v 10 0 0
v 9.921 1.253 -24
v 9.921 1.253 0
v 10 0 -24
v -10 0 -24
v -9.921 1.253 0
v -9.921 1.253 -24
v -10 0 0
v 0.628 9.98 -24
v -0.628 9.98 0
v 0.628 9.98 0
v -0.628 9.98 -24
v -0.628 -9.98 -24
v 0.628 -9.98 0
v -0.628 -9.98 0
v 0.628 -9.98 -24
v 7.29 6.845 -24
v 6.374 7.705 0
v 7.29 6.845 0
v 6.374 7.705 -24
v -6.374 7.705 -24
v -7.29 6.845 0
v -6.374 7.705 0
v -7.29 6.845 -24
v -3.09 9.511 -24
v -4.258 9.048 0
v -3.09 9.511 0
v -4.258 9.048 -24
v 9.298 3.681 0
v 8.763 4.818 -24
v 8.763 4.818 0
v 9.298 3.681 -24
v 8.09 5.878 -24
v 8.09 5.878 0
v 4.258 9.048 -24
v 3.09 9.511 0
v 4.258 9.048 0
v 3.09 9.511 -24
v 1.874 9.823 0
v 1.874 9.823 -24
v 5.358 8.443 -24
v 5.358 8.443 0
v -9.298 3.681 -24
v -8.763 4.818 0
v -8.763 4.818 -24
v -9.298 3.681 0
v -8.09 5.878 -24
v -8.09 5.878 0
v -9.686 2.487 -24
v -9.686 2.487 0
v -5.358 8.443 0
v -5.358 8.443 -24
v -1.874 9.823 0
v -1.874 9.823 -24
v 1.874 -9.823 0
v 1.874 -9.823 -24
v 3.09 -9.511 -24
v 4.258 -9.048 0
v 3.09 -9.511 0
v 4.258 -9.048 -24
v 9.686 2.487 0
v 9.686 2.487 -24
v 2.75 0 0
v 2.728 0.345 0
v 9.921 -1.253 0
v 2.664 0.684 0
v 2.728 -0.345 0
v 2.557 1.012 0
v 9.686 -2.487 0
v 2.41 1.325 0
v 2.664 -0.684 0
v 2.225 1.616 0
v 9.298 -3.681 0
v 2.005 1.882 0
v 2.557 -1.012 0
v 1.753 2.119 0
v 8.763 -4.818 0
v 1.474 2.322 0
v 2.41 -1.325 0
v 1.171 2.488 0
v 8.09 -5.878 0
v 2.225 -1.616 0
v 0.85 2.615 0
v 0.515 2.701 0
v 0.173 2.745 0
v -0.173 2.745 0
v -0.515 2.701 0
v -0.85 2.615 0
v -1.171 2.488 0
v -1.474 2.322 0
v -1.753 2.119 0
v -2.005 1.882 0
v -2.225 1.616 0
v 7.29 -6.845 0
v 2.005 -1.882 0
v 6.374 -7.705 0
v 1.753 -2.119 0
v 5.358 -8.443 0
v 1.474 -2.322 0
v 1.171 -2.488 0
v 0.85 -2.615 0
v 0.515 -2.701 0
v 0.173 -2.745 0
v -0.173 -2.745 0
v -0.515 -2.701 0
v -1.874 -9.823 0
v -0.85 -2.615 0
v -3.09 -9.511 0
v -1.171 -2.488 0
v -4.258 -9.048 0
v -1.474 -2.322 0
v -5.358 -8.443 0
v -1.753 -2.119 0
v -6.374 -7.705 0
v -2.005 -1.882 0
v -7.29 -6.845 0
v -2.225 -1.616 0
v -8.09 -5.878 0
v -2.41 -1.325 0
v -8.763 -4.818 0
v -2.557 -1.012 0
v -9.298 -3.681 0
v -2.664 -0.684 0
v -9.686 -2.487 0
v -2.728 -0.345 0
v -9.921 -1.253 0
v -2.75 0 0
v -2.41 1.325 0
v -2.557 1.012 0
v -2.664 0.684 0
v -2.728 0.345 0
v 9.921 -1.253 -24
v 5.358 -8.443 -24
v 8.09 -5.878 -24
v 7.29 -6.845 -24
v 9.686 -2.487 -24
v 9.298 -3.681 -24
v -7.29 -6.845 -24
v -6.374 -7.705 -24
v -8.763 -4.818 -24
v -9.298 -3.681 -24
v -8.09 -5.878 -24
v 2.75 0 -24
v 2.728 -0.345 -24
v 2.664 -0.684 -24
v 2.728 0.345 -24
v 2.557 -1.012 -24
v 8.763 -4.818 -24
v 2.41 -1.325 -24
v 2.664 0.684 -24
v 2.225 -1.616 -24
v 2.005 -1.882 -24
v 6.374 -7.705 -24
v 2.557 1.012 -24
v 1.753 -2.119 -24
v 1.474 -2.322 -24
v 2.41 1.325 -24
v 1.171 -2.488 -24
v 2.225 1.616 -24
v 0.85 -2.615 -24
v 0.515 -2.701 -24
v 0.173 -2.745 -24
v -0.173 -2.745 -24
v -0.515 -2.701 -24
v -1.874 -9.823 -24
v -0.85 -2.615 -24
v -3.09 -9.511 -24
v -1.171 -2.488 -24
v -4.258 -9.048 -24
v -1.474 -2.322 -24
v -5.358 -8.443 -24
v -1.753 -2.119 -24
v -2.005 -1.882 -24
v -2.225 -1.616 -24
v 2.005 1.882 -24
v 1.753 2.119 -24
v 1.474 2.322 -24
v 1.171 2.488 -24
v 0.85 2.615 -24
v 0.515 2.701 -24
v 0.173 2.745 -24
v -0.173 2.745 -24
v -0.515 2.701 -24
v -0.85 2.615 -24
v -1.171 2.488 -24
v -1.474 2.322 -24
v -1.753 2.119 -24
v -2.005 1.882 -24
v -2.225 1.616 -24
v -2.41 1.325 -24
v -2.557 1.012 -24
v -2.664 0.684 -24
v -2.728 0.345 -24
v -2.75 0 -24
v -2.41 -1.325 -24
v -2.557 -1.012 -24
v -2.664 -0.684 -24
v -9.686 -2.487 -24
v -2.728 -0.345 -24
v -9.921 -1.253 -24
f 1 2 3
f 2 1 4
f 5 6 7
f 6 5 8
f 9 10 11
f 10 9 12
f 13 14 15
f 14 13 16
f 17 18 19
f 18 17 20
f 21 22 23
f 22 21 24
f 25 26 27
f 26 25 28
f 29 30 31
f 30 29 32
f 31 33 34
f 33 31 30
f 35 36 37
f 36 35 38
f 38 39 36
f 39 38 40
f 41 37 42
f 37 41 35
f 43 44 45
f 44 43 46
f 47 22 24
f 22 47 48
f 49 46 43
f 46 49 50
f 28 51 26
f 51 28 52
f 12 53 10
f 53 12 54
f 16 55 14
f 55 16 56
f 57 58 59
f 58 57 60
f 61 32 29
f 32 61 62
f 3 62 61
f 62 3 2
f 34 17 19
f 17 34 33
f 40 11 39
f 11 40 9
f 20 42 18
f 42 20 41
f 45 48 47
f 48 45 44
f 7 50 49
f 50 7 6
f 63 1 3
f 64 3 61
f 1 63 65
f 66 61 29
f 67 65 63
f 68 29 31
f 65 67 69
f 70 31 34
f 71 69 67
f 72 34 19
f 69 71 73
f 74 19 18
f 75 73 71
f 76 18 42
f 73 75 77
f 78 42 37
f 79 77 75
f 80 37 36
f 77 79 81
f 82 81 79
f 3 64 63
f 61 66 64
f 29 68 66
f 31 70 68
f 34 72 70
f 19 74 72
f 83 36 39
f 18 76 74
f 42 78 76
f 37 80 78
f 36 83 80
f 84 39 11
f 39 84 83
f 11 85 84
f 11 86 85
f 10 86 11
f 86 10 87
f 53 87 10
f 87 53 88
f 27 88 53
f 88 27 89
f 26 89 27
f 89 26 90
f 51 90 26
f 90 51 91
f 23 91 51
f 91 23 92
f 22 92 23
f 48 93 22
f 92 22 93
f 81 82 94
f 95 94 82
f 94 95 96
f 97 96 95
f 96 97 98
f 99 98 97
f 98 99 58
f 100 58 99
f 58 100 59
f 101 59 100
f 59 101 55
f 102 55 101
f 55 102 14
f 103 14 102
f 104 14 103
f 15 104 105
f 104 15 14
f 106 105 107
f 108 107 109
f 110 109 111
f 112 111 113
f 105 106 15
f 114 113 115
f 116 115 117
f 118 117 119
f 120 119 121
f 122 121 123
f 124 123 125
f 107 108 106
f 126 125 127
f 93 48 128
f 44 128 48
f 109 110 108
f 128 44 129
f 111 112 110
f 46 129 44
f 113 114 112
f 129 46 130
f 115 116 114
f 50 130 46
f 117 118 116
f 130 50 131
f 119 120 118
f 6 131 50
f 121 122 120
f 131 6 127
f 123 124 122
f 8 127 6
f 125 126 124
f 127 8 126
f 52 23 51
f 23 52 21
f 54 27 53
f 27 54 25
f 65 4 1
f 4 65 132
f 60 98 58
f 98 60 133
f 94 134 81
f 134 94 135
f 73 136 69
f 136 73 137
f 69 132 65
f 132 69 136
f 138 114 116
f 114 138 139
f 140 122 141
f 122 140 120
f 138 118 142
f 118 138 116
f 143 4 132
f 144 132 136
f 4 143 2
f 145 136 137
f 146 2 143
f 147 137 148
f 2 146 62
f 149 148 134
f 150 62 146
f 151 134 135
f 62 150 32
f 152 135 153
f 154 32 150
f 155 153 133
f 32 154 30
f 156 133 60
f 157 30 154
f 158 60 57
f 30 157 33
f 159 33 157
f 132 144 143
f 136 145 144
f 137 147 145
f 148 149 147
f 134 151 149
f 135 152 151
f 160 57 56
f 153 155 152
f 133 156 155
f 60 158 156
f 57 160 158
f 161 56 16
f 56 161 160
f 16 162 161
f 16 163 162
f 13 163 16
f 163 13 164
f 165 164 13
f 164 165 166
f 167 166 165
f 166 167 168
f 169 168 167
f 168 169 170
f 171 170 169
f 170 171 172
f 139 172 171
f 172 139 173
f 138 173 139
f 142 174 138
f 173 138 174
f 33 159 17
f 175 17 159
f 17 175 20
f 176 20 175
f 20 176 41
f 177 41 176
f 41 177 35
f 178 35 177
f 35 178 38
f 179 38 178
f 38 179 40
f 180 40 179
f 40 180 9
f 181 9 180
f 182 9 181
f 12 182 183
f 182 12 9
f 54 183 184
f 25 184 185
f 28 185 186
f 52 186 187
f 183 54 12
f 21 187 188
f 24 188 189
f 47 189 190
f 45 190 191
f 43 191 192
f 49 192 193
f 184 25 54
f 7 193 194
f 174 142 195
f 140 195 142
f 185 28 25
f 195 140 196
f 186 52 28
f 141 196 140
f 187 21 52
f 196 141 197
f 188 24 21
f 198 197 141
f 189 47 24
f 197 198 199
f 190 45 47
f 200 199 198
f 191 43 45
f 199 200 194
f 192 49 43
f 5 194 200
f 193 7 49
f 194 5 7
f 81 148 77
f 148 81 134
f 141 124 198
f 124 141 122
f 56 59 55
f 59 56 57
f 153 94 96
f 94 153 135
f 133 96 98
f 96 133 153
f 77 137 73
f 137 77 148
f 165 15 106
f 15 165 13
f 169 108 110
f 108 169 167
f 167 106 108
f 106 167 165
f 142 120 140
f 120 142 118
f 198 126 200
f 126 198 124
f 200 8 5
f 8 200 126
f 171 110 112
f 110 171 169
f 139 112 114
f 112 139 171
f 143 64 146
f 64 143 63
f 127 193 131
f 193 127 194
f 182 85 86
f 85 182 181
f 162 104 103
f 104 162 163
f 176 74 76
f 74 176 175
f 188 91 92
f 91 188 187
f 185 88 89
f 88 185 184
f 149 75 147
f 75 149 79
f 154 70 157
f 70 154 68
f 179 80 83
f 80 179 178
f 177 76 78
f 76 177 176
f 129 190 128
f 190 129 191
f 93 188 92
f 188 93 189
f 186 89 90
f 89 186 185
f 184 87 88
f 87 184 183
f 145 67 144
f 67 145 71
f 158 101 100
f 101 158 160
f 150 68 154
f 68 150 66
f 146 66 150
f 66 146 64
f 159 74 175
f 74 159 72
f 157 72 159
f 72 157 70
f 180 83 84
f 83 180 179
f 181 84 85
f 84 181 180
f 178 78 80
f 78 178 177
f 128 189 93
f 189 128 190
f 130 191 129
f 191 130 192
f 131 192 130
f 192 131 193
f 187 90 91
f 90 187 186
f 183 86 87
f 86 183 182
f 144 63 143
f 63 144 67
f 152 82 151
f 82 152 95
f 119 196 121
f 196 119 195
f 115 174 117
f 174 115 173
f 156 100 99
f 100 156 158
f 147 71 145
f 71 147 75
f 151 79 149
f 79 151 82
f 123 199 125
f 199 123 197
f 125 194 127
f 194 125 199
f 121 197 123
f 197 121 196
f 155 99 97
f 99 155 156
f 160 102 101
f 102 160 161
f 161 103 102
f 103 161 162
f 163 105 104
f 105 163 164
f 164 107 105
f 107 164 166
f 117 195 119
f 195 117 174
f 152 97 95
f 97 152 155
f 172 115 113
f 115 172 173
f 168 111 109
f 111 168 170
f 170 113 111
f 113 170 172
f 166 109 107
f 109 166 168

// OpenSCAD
$fn = 50;


difference() {
	union() {
		translate(v = [0, 0, -24.0000000000]) {
			cylinder(h = 24, r = 10.0000000000);
		}
		cylinder(h = 0, r = 13.0000000000);
	}
	union() {
		#translate(v = [0, 0, -24]) {
			cylinder(h = 24, r = 2.7500000000);
		}
	}
}
